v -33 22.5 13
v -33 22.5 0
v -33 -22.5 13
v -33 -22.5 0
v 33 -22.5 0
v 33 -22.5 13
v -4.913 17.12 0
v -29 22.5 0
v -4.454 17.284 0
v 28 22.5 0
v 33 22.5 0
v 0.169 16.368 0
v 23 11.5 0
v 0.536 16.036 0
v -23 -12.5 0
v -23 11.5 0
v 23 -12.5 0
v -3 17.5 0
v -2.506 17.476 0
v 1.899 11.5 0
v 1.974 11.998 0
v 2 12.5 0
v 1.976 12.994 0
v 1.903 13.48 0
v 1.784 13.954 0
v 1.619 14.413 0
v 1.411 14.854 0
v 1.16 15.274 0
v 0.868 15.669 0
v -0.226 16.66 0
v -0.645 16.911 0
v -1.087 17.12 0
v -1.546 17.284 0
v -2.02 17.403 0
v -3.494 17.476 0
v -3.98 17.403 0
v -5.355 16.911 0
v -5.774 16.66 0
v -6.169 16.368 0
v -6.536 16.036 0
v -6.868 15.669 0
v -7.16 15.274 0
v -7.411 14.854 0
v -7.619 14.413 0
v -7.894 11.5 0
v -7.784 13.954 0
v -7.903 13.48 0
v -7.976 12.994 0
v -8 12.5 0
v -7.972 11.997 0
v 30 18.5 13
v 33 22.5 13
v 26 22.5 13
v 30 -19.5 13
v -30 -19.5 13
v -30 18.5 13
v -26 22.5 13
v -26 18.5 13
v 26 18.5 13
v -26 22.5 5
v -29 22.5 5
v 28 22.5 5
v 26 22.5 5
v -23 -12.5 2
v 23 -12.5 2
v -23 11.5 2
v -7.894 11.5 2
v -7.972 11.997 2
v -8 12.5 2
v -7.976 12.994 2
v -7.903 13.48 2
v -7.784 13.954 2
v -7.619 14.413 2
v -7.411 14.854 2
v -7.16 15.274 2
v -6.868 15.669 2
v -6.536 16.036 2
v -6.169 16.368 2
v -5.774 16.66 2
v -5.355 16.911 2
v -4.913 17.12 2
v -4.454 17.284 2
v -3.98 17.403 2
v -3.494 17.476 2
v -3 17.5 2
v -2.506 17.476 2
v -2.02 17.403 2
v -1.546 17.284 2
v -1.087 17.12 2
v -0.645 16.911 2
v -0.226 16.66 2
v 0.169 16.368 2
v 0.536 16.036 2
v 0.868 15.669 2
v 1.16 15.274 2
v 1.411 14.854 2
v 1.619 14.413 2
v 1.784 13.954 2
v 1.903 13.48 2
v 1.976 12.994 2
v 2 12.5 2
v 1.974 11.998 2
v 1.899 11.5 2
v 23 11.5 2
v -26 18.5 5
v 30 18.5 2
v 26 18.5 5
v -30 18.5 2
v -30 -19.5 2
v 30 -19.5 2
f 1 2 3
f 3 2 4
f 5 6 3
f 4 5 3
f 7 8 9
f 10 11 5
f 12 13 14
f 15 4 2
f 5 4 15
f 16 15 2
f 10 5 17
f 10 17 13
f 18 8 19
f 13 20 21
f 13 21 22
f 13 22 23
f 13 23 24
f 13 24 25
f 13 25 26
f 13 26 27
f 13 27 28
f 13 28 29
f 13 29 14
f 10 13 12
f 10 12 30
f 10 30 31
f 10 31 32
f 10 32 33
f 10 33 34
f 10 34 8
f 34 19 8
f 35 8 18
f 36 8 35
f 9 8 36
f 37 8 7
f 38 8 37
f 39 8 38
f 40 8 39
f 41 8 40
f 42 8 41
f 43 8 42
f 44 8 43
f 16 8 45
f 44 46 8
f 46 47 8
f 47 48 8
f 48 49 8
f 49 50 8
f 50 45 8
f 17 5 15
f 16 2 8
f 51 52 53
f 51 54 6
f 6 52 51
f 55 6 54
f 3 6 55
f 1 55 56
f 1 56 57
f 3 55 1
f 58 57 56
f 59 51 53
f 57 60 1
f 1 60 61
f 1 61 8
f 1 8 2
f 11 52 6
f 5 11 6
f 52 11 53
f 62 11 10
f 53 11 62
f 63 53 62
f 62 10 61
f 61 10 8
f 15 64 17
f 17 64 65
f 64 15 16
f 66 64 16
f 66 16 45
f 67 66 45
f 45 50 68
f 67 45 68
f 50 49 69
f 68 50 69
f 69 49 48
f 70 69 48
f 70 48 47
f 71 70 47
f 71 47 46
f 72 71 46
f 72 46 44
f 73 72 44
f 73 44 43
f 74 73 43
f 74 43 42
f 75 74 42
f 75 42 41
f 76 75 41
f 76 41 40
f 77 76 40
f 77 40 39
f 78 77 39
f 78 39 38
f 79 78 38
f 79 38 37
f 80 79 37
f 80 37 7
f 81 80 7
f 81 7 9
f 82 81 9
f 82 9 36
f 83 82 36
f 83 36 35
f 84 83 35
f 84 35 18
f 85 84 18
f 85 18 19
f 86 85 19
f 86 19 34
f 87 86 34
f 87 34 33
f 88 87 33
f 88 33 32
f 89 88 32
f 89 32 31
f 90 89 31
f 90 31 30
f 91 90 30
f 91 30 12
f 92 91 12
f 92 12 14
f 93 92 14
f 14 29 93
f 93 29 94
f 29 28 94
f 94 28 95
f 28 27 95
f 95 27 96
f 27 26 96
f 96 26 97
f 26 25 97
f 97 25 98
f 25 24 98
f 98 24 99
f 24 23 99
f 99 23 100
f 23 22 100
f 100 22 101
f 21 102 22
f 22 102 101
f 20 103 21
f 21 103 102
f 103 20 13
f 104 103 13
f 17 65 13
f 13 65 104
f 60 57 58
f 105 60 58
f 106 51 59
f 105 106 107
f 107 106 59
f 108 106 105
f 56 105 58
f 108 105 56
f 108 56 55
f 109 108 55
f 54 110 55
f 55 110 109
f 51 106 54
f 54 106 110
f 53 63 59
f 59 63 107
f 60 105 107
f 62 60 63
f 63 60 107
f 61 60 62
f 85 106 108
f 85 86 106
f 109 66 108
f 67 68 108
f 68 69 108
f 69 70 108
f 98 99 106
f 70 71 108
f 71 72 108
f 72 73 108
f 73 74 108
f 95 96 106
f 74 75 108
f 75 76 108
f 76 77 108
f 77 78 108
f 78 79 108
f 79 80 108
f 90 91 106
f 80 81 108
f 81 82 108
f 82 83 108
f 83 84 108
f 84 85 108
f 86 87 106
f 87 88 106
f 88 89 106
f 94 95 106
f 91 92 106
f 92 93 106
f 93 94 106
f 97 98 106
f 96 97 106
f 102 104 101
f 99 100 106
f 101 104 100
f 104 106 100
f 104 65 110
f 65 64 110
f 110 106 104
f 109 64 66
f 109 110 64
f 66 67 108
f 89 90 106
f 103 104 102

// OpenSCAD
// Module names are of the form poly_<inkscape-path-id>().  As a result,
// you can associate a polygon in this OpenSCAD program with the corresponding
// SVG element in the Inkscape document by looking for the XML element with
// the attribute id="inkscape-path-id".

// fudge value is used to ensure that subtracted solids are a tad taller
// in the z dimension than the polygon being subtracted from.  This helps
// keep the resulting .stl file manifold.
fudge = 0.1;

module poly_rect4149_5mm(h)
{
  scale([25.4/90, -25.4/90, 1]) union()
  {
    linear_extrude(height=h)
      polygon([[-102.756266,-79.724195],[99.212247,-79.724195],[99.212247,-65.550967],[-102.756266,-65.550967]]);
  }
}

module poly_rect3338_2mm(h)
{
  scale([25.4/90, -25.4/90, 1]) union()
  {
    difference()
    {
       linear_extrude(height=h)
         polygon([[-116.928714,-79.723081],[-116.928714,79.724195],[116.928714,79.724195],[116.928714,-79.723081],[-116.928714,-79.723081]]);
       translate([0, 0, -fudge])
         linear_extrude(height=h+2*fudge)
           polygon([[-10.629881,-62.008241],[-8.878784,-61.921571],[-7.157345,-61.664716],[-5.477183,-61.242488],[-3.849914,-60.659700],[-2.287157,-59.921164],[-0.800529,-59.031692],[0.598351,-57.996095],[1.897866,-56.819187],[3.074774,-55.519672],[4.110371,-54.120792],[4.999843,-52.634164],[5.738379,-51.071407],[6.321167,-49.444138],[6.743395,-47.763976],[7.000250,-46.042537],[7.086920,-44.291440],[6.996476,-42.510902],[6.727540,-40.748470],[81.495123,-40.748470],[81.495123,44.292553],[-81.497073,44.292553],[-81.497073,-40.748470],[-27.969722,-40.748470],[-28.247494,-42.510455],[-28.346682,-44.291440],[-28.260011,-46.042537],[-28.003157,-47.763976],[-27.580929,-49.444138],[-26.998141,-51.071407],[-26.259605,-52.634164],[-25.370133,-54.120792],[-24.334536,-55.519672],[-23.157628,-56.819187],[-21.858113,-57.996095],[-20.459233,-59.031692],[-18.972605,-59.921164],[-17.409848,-60.659700],[-15.782579,-61.242488],[-14.102417,-61.664716],[-12.380978,-61.921571],[-10.629881,-62.008241]]);
    }
  }
}

module poly_path4143_13mm(h)
{
  scale([25.4/90, -25.4/90, 1]) union()
  {
    linear_extrude(height=h)
      polygon([[-116.928714,-79.723081],[-116.928714,79.724195],[116.928714,79.724195],[116.928714,-79.723081],[92.125983,-79.723081],[92.125983,-65.551201],[106.297854,-65.551201],[106.297854,69.095284],[-106.299808,69.095284],[-106.299808,-65.551201],[-92.125979,-65.551201],[-92.125979,-79.723081],[-116.928714,-79.723081]]);
  }
}

module xgantryfarendcover(h)
{

poly_rect4149_5mm(5);
poly_rect3338_2mm(2);
poly_path4143_13mm(13);
}

xgantryfarendcover(5);
